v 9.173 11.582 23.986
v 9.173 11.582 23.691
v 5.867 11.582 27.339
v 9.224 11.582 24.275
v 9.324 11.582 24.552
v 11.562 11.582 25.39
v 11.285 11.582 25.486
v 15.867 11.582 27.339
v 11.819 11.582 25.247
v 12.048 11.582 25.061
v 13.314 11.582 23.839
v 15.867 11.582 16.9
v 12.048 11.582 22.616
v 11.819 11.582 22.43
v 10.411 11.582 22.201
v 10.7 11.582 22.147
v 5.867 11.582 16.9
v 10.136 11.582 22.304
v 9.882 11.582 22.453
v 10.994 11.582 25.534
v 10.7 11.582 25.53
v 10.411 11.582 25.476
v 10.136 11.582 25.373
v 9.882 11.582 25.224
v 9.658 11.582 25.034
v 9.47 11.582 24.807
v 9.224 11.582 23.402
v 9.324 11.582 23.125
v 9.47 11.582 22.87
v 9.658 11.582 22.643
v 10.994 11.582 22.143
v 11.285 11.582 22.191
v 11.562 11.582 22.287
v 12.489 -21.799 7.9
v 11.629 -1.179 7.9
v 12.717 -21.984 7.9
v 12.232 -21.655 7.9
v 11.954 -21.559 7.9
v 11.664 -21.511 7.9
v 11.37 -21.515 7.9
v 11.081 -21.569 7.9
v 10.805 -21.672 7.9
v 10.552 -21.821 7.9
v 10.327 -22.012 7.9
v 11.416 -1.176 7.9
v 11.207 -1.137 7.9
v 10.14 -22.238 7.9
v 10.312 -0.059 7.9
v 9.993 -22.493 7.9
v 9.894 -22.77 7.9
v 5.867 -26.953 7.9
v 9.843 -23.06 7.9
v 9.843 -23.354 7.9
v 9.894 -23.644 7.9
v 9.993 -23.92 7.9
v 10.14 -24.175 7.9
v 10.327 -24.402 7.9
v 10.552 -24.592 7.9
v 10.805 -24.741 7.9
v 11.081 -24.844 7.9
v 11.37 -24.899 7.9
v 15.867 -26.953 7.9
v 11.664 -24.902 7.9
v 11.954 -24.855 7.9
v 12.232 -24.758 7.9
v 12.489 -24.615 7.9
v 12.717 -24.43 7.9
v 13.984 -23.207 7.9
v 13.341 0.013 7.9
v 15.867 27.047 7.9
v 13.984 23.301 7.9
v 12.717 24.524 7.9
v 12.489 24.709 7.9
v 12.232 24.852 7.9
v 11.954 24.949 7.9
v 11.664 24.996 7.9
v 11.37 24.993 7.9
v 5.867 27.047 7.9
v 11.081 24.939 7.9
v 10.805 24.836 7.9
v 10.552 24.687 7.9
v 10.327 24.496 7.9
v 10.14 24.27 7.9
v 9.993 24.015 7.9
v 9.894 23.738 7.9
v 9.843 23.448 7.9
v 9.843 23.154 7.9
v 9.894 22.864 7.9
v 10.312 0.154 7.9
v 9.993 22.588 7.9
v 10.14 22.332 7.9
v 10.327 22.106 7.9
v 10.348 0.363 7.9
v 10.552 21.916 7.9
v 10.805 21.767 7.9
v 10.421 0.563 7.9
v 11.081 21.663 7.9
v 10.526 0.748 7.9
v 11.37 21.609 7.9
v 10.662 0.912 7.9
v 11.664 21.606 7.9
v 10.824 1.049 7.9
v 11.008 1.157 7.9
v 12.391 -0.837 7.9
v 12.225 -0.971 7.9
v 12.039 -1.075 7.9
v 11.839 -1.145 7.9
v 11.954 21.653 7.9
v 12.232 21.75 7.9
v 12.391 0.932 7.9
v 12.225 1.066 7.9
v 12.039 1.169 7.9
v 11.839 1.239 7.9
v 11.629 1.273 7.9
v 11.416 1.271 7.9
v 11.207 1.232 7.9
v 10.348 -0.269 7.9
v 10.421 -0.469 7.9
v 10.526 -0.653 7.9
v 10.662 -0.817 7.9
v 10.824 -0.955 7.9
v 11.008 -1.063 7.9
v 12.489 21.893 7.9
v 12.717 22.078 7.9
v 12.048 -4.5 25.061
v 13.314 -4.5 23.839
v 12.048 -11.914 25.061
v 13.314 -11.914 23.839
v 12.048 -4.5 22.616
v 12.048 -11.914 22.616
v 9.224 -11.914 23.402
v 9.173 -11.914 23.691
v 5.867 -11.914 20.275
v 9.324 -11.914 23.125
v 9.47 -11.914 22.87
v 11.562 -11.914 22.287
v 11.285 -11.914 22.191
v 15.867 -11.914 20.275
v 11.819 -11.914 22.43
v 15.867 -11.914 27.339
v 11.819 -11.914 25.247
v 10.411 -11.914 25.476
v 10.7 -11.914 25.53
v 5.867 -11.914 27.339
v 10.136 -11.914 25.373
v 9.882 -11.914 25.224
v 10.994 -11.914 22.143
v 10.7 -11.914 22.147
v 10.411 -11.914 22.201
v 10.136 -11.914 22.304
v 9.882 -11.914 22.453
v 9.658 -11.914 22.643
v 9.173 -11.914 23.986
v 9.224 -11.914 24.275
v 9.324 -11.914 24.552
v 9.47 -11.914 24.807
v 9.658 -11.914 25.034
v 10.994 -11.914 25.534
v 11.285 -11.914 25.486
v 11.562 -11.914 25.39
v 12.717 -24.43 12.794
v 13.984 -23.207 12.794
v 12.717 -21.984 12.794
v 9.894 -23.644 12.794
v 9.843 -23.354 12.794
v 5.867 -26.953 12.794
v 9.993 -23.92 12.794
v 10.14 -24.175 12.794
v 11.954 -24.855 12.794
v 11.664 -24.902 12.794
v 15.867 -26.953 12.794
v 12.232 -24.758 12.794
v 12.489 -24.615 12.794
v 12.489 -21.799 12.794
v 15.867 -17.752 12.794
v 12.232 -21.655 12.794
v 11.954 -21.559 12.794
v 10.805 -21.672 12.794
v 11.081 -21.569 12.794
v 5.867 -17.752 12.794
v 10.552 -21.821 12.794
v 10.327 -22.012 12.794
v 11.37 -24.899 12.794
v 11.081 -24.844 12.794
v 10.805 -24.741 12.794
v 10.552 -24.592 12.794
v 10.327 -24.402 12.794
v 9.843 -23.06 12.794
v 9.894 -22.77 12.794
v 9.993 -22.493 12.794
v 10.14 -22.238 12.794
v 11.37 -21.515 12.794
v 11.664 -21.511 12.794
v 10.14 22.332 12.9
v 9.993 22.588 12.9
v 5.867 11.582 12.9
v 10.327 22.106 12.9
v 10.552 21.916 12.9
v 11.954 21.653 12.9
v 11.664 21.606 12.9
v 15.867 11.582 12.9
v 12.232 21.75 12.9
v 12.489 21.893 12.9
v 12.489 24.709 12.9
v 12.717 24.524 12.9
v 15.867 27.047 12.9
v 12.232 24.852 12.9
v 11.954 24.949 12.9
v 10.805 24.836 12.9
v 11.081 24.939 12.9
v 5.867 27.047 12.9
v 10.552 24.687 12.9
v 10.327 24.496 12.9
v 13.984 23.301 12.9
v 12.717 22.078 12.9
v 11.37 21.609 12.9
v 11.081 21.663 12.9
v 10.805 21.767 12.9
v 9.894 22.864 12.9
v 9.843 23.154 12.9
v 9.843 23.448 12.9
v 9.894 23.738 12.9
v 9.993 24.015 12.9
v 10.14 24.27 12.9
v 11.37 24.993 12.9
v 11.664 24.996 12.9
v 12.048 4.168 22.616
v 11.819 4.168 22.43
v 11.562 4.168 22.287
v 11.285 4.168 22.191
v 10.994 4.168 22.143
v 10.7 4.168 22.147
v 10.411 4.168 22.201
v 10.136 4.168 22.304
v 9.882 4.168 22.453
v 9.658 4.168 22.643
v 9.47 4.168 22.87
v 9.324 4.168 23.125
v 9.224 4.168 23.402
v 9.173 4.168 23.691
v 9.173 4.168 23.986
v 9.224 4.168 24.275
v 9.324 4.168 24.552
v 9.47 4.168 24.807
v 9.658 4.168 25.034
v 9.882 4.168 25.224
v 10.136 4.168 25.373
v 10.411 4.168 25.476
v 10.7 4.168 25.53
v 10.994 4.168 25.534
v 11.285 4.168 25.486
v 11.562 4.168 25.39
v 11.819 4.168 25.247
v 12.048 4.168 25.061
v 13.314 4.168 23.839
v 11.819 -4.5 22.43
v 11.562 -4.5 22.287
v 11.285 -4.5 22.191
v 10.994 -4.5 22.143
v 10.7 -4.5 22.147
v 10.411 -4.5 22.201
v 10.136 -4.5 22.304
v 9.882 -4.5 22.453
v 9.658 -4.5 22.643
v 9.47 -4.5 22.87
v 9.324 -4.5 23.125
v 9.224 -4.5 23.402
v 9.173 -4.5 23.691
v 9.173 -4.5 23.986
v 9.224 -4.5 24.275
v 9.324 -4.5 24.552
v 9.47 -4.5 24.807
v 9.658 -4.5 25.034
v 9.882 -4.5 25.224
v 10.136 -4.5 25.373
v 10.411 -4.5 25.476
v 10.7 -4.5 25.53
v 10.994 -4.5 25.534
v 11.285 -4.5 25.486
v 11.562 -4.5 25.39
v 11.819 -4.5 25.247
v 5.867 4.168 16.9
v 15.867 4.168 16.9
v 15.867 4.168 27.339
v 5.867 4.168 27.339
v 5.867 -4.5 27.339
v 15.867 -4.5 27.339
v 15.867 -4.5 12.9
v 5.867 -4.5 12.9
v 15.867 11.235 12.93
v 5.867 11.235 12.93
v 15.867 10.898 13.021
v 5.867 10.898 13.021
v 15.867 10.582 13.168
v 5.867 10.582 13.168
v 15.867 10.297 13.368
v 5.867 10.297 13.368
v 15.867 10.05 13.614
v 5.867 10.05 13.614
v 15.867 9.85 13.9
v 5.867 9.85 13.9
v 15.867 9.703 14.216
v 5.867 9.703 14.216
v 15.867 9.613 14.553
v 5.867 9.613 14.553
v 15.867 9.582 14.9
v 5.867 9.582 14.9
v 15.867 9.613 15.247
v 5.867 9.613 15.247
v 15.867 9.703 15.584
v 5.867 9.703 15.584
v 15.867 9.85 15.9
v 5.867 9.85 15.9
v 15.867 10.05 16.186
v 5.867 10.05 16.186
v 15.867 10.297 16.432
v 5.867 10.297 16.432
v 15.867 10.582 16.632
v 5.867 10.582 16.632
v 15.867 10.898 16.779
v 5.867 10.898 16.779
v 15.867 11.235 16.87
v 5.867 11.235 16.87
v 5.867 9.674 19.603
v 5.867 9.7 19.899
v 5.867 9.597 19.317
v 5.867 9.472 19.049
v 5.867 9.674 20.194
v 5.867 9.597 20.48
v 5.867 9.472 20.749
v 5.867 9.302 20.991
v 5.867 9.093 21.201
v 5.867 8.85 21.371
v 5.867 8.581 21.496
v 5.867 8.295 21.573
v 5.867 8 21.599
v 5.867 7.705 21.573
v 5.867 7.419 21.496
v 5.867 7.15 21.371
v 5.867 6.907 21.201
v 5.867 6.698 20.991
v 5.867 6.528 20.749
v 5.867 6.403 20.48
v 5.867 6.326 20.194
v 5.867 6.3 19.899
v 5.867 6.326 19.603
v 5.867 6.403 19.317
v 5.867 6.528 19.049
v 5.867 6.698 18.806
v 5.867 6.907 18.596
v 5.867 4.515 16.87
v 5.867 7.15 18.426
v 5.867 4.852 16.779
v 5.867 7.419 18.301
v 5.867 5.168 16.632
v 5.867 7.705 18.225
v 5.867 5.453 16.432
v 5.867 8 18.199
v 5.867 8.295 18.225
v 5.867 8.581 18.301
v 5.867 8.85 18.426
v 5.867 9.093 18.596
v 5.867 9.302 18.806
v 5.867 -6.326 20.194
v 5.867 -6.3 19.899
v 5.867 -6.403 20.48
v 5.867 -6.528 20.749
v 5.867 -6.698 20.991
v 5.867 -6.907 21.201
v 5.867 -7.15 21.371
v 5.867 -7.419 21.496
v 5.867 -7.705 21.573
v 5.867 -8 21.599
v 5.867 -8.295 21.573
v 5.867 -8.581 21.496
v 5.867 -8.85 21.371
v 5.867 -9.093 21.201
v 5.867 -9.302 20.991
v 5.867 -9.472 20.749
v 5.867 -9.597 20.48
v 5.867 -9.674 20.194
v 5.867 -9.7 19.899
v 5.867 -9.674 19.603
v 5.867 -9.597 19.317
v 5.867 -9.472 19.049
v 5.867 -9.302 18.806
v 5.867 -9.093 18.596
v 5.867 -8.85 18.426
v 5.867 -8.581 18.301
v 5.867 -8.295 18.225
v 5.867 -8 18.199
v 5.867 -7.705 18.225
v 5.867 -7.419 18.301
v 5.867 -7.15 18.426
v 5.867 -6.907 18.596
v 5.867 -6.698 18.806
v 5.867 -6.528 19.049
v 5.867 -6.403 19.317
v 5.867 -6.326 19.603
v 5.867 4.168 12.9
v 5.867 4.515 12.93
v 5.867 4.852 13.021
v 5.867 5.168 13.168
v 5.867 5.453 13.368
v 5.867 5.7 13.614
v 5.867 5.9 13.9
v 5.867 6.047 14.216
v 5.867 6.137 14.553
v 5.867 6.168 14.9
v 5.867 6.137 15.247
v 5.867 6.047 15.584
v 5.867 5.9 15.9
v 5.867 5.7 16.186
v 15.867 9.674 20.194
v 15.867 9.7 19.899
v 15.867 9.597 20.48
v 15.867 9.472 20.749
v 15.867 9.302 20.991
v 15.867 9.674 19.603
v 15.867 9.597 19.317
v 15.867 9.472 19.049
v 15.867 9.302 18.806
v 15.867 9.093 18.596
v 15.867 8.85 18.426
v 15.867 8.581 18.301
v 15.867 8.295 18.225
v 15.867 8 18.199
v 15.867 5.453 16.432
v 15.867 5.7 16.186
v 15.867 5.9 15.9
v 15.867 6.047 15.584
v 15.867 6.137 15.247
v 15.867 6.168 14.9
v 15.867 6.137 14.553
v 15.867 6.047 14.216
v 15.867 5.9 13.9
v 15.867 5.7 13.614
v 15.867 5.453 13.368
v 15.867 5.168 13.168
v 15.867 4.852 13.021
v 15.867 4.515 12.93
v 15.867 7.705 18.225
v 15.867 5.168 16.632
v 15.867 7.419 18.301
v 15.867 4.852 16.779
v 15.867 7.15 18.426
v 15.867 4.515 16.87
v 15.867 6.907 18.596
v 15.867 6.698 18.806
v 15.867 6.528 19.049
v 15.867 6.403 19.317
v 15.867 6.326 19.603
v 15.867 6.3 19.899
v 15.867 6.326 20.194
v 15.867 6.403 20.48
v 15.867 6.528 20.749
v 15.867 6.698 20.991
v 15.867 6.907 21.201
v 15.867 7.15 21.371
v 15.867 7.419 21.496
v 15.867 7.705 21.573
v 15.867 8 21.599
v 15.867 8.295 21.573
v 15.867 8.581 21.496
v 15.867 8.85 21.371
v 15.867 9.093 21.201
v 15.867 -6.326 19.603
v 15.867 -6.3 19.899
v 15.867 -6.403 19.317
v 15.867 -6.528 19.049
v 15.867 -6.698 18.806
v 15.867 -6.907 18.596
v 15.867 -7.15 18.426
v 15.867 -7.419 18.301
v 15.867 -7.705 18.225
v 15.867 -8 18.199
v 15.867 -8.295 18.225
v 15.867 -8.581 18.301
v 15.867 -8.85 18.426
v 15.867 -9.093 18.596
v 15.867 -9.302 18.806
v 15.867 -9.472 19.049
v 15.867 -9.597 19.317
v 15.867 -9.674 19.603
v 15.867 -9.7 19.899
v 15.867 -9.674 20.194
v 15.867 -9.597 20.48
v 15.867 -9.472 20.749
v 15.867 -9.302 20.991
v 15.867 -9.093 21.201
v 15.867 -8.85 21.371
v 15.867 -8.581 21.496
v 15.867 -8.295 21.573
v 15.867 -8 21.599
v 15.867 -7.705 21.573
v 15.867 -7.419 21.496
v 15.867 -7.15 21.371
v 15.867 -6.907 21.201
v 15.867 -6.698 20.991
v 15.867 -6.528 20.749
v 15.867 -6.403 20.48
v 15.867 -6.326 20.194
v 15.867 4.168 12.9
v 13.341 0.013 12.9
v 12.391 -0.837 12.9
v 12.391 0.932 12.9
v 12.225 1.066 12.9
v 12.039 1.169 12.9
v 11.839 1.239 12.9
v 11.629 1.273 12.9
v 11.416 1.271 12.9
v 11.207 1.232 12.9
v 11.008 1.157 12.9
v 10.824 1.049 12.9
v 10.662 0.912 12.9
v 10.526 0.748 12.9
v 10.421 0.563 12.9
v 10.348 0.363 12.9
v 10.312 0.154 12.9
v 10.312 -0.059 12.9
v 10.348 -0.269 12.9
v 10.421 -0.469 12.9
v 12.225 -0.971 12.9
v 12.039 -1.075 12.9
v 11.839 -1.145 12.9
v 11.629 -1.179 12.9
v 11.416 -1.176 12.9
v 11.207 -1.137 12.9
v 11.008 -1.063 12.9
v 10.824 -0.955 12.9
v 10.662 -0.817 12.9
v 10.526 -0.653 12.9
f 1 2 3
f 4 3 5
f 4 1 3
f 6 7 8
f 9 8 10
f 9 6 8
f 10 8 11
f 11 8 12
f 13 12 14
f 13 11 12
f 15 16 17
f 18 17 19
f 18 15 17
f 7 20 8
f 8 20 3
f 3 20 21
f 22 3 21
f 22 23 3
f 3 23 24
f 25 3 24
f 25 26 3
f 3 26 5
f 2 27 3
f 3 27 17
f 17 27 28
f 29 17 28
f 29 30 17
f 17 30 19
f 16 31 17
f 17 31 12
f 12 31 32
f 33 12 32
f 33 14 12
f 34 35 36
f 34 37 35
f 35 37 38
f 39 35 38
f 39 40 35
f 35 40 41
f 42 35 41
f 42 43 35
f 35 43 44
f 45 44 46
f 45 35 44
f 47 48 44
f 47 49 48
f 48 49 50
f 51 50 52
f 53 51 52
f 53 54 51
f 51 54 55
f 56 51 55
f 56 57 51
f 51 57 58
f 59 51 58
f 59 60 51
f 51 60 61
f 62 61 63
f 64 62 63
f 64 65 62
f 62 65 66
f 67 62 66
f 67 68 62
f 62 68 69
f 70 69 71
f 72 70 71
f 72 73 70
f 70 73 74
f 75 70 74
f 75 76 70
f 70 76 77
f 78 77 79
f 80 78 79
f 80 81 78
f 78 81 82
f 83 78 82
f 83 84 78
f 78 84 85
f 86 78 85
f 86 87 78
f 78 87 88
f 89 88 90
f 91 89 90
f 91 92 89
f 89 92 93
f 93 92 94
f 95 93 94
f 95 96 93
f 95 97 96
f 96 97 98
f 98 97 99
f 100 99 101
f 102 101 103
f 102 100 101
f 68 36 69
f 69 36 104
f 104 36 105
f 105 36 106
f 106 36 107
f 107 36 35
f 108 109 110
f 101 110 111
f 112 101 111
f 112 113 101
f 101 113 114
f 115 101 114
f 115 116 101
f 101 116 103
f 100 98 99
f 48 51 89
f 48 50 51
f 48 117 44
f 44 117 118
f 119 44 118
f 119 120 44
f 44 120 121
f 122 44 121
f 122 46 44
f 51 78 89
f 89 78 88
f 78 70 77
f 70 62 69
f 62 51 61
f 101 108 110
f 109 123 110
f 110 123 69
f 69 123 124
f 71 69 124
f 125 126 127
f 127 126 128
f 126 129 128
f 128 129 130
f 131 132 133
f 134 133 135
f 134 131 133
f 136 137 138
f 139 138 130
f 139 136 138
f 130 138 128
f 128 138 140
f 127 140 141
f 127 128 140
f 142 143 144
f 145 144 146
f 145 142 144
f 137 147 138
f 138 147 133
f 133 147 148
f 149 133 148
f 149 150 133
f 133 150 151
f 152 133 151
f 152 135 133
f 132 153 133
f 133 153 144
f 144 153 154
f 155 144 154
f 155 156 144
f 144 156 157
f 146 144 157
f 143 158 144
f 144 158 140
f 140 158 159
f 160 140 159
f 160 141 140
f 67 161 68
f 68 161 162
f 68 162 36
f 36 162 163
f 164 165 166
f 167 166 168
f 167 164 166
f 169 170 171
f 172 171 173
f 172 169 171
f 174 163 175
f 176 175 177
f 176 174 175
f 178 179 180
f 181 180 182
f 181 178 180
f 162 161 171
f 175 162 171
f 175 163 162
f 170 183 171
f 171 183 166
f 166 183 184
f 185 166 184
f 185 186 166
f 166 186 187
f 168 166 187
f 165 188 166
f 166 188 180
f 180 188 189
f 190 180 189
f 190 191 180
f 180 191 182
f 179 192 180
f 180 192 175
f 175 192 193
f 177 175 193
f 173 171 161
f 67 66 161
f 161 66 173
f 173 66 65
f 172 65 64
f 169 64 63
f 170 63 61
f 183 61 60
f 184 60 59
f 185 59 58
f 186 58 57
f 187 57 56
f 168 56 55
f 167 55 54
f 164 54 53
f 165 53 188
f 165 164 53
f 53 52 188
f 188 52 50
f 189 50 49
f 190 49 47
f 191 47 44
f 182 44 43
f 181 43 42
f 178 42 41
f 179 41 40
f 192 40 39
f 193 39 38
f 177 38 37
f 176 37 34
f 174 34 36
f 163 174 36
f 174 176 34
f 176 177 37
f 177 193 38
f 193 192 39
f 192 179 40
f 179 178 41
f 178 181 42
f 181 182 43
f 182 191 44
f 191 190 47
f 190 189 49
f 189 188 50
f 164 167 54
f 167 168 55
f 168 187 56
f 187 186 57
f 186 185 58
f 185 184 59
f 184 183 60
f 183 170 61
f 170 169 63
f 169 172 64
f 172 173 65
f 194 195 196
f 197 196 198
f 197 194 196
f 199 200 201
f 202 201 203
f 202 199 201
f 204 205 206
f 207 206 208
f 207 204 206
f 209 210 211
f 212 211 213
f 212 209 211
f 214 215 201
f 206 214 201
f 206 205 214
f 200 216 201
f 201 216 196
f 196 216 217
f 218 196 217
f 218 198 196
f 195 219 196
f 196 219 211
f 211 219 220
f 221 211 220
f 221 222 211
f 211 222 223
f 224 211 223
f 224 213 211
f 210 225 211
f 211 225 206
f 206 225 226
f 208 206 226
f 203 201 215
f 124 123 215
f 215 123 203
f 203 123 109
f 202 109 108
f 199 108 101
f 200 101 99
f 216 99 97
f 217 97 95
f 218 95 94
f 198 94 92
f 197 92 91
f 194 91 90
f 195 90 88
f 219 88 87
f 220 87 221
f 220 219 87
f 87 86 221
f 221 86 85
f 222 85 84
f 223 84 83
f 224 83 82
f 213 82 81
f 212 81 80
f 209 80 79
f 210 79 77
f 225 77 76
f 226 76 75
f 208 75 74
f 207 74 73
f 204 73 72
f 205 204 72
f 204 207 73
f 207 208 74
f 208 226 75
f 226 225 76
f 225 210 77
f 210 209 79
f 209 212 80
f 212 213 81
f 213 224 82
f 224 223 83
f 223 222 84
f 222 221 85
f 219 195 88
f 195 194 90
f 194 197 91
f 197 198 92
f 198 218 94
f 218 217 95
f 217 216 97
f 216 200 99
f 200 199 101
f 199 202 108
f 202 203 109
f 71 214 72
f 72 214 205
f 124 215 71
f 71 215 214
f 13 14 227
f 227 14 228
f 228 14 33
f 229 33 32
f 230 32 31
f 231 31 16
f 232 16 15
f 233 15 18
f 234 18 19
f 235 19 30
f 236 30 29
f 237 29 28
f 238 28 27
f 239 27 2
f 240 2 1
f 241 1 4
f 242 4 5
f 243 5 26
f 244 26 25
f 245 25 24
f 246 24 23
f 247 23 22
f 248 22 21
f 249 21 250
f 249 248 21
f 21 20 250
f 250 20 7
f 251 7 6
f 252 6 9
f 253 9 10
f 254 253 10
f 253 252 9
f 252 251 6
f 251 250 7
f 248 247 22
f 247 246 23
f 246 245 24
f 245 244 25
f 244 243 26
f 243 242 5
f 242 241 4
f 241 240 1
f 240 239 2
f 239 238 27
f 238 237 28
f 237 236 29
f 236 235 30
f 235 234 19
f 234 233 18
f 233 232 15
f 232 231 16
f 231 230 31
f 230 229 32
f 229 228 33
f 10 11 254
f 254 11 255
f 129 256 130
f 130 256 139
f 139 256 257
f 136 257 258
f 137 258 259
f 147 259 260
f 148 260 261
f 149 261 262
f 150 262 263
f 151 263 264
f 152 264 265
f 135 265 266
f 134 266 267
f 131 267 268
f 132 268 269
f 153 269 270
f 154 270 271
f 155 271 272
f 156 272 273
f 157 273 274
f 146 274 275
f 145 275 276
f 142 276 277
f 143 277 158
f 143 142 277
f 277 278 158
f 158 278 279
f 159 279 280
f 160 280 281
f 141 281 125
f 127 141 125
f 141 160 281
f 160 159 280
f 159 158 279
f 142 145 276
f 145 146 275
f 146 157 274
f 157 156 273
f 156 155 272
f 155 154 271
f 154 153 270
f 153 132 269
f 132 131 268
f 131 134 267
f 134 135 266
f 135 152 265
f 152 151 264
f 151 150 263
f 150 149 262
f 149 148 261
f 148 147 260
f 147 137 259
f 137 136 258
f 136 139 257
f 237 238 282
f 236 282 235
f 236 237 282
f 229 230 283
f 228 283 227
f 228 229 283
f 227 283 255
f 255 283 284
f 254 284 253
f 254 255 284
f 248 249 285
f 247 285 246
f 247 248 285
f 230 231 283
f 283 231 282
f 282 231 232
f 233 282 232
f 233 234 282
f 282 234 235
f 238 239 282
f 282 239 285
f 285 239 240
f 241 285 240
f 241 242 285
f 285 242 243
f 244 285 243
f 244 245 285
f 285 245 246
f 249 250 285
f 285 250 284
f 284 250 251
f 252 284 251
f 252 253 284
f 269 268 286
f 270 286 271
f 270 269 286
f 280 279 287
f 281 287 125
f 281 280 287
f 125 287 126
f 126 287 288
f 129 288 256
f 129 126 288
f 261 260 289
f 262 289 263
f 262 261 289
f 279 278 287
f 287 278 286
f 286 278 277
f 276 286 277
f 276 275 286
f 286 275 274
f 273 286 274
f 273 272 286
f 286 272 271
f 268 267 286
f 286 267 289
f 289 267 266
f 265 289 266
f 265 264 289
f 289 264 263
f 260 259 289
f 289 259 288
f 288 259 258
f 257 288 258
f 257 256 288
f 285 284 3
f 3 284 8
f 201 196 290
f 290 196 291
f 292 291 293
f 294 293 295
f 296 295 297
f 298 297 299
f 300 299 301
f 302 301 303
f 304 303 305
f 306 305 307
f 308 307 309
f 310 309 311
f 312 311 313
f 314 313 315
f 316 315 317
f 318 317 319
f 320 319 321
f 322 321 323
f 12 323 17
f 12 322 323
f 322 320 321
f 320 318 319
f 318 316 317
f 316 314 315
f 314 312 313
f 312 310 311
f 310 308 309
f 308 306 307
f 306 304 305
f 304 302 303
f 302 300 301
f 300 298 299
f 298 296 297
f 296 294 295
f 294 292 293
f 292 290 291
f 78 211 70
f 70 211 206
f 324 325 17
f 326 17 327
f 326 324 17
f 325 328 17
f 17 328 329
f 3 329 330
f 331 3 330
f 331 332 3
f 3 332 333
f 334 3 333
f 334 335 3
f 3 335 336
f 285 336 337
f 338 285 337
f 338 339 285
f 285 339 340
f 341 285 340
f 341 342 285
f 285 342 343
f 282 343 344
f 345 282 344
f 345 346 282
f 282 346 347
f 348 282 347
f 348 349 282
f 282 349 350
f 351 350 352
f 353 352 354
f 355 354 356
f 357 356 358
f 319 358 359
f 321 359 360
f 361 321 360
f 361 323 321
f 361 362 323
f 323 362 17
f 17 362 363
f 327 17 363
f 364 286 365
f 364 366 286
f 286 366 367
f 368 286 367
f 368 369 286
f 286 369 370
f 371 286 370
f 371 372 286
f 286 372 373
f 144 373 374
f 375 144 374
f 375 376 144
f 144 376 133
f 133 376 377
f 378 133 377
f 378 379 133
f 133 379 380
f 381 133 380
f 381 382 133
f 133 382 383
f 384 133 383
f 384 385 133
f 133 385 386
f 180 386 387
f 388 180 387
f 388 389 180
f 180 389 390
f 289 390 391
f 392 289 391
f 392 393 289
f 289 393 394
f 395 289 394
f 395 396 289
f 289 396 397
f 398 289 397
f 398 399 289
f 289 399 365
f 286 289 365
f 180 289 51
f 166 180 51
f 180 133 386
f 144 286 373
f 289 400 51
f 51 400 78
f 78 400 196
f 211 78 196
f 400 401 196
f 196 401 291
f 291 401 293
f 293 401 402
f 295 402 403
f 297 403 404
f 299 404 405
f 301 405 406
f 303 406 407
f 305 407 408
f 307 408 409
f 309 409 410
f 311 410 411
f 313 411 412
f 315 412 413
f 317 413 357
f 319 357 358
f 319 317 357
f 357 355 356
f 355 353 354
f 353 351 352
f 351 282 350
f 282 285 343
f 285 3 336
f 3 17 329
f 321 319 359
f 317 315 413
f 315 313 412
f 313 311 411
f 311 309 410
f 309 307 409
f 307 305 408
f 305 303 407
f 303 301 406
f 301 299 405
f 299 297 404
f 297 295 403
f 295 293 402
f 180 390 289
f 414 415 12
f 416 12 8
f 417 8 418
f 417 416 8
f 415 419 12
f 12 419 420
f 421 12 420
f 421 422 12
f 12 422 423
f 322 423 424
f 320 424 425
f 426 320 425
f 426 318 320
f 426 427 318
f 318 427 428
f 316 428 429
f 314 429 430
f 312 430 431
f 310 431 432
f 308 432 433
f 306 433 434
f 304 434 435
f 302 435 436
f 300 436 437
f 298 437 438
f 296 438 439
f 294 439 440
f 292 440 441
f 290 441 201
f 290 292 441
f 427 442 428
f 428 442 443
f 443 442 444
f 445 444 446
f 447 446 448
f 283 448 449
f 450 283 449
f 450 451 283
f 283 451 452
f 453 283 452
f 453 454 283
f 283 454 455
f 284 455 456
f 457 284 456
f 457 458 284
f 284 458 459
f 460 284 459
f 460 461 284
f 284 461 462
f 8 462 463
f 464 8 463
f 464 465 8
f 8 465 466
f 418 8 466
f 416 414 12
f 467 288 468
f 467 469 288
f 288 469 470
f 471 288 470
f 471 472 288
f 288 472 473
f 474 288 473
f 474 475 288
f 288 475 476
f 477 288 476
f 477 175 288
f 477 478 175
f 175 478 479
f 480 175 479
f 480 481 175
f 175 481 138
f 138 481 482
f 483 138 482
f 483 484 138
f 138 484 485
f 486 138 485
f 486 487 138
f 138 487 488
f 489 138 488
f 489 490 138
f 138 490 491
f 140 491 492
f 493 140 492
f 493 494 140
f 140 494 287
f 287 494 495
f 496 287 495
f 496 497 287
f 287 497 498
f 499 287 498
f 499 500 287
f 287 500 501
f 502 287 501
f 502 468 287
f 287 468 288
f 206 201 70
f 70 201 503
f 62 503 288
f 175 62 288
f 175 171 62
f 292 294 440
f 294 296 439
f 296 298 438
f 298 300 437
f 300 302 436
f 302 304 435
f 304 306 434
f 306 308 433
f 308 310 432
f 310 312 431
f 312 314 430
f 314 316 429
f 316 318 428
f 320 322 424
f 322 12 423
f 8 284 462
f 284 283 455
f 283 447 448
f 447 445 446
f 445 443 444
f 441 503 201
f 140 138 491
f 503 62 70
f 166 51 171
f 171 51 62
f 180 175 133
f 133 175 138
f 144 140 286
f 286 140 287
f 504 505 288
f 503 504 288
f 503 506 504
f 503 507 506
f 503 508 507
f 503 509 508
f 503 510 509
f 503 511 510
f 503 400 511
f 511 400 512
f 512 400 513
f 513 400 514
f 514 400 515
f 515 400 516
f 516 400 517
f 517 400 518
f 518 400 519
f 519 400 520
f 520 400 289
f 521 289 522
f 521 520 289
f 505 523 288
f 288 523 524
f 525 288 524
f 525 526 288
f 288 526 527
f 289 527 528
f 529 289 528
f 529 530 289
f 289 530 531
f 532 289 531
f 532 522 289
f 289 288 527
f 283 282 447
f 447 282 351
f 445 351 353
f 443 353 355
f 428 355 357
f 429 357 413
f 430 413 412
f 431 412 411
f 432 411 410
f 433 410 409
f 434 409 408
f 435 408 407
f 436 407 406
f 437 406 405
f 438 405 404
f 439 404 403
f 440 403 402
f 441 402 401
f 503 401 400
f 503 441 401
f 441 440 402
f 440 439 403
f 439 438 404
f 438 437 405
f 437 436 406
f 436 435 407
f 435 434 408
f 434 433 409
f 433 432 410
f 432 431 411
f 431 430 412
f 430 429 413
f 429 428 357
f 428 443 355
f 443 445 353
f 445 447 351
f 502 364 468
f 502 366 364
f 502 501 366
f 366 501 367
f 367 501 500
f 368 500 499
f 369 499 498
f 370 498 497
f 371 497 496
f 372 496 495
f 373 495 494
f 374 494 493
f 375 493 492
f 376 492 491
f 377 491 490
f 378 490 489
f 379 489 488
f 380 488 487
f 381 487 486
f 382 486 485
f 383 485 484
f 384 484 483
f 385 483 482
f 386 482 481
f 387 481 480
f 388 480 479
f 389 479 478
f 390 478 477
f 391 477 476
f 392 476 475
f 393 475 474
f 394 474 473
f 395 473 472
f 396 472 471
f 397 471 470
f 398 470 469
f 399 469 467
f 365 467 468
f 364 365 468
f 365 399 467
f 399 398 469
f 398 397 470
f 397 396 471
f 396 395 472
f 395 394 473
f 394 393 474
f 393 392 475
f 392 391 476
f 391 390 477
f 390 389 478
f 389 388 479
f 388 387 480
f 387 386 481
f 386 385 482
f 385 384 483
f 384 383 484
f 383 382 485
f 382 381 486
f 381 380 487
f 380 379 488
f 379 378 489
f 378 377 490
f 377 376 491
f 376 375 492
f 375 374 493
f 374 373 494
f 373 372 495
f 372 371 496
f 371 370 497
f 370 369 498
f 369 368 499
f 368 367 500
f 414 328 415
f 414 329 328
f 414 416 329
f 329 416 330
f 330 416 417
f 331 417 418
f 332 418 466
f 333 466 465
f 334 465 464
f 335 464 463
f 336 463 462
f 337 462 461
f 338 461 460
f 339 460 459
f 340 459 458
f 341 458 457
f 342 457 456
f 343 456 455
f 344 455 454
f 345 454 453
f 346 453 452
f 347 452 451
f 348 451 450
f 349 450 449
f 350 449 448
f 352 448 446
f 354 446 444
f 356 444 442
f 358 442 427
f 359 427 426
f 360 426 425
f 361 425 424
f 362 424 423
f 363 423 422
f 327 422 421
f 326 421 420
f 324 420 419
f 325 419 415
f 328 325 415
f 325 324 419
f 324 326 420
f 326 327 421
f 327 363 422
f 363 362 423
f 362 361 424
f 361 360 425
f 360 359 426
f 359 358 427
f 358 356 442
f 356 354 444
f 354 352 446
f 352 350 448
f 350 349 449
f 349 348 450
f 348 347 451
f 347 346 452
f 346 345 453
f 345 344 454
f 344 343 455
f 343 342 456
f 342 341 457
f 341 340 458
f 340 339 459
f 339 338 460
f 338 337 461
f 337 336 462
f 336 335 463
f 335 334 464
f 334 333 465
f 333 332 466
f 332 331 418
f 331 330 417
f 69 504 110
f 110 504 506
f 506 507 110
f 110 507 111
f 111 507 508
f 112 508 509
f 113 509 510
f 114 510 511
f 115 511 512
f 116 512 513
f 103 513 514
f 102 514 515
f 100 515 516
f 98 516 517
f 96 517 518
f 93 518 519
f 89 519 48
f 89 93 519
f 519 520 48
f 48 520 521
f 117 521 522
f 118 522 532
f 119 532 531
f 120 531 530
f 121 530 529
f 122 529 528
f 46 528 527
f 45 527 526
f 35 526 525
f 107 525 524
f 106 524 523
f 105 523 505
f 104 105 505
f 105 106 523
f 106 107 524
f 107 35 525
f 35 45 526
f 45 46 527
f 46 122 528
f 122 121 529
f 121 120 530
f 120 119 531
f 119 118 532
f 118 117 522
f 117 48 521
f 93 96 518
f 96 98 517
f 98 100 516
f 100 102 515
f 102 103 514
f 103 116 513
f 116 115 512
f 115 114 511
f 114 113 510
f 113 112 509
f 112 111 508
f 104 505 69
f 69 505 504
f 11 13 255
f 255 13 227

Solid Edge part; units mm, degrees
sketch "Sketch1" plane through (5.8669, 0, 0) normal (1, 0, 0) x (0, 1, 0)
  circle A0 centre (-8, 19.8987) radius 1.7
  circle A1 centre (8, 19.8987) radius 1.7
  line L0 (27.0472, 7.9) -> (27.0472, 12.9)
  line L1 (27.0472, 12.9) -> (11.5822, 12.9)
  line L2 (11.5822, 27.3385) -> (11.5822, 16.9)
  line L3 (4.1678, 27.3385) -> (11.5822, 27.3385)
  line L4 (4.1678, 16.9) -> (4.1678, 27.3385)
  line L5 (-4.5, 12.9) -> (4.1678, 12.9)
  line L6 (-4.5, 27.3385) -> (-4.5, 12.9)
  line L7 (-11.9144, 27.3385) -> (-4.5, 27.3385)
  line L8 (-11.9144, 20.2747) -> (-11.9144, 27.3385)
  line L9 (-11.9144, 20.2747) -> (-17.7524, 12.7936)
  line L10 (-17.7524, 12.7936) -> (-26.9528, 12.7936)
  line L11 (-26.9528, 12.7936) -> (-26.9528, 7.9)
  line L12 (-26.9528, 7.9) -> (27.0472, 7.9)
  arc A2 (11.5822, 12.9) -> (11.5822, 16.9) centre (11.5822, 14.9) cw
  arc A3 (4.1678, 16.9) -> (4.1678, 12.9) centre (4.1678, 14.9) cw
extrude "ExtrudedProtrusion_1" add sketch "Sketch1" along normal blind 10
sketch "Sketch2" plane through (10.8669, 19.3147, 12.9) normal (0, 0, 1) x (1, 0, 0)
  line L0 (1.5237, -20.1519) -> (2.4746, -19.3013)
  line L1 (1.5237, -18.3831) -> (2.4746, -19.3013)
  arc A0 (1.5237, -18.3831) -> (1.5237, -20.1519) centre (0.6696, -19.2675) ccw
  line L2 (1.8505, -41.2986) -> (3.1168, -42.5214)
  line L3 (3.1168, -42.5214) -> (1.8505, -43.7443)
  arc A1 (1.8505, -43.7443) -> (1.8505, -41.2986) centre (0.6696, -42.5214) cw
  line L4 (1.8505, 5.2093) -> (3.1168, 3.9865)
  line L5 (3.1168, 3.9865) -> (1.8505, 2.7636)
  arc A2 (1.8505, 2.7636) -> (1.8505, 5.2093) centre (0.6696, 3.9865) cw
extrude "Cutout1" cut sketch "Sketch2" against normal up to next
sketch "Sketch3" plane through (10.8669, -11.9144, 24.843) normal (0, -1, 0) x (0, 0, -1)
  line L0 (-0.2184, 1.1809) -> (1.0044, 2.4472)
  line L1 (1.0044, 2.4472) -> (2.2273, 1.1809)
  arc A0 (2.2273, 1.1809) -> (-0.2184, 1.1809) centre (1.0044, 0) cw
extrude "Cutout2" cut sketch "Sketch3" against normal through all
properties material "ABS Plastic, high impact"
